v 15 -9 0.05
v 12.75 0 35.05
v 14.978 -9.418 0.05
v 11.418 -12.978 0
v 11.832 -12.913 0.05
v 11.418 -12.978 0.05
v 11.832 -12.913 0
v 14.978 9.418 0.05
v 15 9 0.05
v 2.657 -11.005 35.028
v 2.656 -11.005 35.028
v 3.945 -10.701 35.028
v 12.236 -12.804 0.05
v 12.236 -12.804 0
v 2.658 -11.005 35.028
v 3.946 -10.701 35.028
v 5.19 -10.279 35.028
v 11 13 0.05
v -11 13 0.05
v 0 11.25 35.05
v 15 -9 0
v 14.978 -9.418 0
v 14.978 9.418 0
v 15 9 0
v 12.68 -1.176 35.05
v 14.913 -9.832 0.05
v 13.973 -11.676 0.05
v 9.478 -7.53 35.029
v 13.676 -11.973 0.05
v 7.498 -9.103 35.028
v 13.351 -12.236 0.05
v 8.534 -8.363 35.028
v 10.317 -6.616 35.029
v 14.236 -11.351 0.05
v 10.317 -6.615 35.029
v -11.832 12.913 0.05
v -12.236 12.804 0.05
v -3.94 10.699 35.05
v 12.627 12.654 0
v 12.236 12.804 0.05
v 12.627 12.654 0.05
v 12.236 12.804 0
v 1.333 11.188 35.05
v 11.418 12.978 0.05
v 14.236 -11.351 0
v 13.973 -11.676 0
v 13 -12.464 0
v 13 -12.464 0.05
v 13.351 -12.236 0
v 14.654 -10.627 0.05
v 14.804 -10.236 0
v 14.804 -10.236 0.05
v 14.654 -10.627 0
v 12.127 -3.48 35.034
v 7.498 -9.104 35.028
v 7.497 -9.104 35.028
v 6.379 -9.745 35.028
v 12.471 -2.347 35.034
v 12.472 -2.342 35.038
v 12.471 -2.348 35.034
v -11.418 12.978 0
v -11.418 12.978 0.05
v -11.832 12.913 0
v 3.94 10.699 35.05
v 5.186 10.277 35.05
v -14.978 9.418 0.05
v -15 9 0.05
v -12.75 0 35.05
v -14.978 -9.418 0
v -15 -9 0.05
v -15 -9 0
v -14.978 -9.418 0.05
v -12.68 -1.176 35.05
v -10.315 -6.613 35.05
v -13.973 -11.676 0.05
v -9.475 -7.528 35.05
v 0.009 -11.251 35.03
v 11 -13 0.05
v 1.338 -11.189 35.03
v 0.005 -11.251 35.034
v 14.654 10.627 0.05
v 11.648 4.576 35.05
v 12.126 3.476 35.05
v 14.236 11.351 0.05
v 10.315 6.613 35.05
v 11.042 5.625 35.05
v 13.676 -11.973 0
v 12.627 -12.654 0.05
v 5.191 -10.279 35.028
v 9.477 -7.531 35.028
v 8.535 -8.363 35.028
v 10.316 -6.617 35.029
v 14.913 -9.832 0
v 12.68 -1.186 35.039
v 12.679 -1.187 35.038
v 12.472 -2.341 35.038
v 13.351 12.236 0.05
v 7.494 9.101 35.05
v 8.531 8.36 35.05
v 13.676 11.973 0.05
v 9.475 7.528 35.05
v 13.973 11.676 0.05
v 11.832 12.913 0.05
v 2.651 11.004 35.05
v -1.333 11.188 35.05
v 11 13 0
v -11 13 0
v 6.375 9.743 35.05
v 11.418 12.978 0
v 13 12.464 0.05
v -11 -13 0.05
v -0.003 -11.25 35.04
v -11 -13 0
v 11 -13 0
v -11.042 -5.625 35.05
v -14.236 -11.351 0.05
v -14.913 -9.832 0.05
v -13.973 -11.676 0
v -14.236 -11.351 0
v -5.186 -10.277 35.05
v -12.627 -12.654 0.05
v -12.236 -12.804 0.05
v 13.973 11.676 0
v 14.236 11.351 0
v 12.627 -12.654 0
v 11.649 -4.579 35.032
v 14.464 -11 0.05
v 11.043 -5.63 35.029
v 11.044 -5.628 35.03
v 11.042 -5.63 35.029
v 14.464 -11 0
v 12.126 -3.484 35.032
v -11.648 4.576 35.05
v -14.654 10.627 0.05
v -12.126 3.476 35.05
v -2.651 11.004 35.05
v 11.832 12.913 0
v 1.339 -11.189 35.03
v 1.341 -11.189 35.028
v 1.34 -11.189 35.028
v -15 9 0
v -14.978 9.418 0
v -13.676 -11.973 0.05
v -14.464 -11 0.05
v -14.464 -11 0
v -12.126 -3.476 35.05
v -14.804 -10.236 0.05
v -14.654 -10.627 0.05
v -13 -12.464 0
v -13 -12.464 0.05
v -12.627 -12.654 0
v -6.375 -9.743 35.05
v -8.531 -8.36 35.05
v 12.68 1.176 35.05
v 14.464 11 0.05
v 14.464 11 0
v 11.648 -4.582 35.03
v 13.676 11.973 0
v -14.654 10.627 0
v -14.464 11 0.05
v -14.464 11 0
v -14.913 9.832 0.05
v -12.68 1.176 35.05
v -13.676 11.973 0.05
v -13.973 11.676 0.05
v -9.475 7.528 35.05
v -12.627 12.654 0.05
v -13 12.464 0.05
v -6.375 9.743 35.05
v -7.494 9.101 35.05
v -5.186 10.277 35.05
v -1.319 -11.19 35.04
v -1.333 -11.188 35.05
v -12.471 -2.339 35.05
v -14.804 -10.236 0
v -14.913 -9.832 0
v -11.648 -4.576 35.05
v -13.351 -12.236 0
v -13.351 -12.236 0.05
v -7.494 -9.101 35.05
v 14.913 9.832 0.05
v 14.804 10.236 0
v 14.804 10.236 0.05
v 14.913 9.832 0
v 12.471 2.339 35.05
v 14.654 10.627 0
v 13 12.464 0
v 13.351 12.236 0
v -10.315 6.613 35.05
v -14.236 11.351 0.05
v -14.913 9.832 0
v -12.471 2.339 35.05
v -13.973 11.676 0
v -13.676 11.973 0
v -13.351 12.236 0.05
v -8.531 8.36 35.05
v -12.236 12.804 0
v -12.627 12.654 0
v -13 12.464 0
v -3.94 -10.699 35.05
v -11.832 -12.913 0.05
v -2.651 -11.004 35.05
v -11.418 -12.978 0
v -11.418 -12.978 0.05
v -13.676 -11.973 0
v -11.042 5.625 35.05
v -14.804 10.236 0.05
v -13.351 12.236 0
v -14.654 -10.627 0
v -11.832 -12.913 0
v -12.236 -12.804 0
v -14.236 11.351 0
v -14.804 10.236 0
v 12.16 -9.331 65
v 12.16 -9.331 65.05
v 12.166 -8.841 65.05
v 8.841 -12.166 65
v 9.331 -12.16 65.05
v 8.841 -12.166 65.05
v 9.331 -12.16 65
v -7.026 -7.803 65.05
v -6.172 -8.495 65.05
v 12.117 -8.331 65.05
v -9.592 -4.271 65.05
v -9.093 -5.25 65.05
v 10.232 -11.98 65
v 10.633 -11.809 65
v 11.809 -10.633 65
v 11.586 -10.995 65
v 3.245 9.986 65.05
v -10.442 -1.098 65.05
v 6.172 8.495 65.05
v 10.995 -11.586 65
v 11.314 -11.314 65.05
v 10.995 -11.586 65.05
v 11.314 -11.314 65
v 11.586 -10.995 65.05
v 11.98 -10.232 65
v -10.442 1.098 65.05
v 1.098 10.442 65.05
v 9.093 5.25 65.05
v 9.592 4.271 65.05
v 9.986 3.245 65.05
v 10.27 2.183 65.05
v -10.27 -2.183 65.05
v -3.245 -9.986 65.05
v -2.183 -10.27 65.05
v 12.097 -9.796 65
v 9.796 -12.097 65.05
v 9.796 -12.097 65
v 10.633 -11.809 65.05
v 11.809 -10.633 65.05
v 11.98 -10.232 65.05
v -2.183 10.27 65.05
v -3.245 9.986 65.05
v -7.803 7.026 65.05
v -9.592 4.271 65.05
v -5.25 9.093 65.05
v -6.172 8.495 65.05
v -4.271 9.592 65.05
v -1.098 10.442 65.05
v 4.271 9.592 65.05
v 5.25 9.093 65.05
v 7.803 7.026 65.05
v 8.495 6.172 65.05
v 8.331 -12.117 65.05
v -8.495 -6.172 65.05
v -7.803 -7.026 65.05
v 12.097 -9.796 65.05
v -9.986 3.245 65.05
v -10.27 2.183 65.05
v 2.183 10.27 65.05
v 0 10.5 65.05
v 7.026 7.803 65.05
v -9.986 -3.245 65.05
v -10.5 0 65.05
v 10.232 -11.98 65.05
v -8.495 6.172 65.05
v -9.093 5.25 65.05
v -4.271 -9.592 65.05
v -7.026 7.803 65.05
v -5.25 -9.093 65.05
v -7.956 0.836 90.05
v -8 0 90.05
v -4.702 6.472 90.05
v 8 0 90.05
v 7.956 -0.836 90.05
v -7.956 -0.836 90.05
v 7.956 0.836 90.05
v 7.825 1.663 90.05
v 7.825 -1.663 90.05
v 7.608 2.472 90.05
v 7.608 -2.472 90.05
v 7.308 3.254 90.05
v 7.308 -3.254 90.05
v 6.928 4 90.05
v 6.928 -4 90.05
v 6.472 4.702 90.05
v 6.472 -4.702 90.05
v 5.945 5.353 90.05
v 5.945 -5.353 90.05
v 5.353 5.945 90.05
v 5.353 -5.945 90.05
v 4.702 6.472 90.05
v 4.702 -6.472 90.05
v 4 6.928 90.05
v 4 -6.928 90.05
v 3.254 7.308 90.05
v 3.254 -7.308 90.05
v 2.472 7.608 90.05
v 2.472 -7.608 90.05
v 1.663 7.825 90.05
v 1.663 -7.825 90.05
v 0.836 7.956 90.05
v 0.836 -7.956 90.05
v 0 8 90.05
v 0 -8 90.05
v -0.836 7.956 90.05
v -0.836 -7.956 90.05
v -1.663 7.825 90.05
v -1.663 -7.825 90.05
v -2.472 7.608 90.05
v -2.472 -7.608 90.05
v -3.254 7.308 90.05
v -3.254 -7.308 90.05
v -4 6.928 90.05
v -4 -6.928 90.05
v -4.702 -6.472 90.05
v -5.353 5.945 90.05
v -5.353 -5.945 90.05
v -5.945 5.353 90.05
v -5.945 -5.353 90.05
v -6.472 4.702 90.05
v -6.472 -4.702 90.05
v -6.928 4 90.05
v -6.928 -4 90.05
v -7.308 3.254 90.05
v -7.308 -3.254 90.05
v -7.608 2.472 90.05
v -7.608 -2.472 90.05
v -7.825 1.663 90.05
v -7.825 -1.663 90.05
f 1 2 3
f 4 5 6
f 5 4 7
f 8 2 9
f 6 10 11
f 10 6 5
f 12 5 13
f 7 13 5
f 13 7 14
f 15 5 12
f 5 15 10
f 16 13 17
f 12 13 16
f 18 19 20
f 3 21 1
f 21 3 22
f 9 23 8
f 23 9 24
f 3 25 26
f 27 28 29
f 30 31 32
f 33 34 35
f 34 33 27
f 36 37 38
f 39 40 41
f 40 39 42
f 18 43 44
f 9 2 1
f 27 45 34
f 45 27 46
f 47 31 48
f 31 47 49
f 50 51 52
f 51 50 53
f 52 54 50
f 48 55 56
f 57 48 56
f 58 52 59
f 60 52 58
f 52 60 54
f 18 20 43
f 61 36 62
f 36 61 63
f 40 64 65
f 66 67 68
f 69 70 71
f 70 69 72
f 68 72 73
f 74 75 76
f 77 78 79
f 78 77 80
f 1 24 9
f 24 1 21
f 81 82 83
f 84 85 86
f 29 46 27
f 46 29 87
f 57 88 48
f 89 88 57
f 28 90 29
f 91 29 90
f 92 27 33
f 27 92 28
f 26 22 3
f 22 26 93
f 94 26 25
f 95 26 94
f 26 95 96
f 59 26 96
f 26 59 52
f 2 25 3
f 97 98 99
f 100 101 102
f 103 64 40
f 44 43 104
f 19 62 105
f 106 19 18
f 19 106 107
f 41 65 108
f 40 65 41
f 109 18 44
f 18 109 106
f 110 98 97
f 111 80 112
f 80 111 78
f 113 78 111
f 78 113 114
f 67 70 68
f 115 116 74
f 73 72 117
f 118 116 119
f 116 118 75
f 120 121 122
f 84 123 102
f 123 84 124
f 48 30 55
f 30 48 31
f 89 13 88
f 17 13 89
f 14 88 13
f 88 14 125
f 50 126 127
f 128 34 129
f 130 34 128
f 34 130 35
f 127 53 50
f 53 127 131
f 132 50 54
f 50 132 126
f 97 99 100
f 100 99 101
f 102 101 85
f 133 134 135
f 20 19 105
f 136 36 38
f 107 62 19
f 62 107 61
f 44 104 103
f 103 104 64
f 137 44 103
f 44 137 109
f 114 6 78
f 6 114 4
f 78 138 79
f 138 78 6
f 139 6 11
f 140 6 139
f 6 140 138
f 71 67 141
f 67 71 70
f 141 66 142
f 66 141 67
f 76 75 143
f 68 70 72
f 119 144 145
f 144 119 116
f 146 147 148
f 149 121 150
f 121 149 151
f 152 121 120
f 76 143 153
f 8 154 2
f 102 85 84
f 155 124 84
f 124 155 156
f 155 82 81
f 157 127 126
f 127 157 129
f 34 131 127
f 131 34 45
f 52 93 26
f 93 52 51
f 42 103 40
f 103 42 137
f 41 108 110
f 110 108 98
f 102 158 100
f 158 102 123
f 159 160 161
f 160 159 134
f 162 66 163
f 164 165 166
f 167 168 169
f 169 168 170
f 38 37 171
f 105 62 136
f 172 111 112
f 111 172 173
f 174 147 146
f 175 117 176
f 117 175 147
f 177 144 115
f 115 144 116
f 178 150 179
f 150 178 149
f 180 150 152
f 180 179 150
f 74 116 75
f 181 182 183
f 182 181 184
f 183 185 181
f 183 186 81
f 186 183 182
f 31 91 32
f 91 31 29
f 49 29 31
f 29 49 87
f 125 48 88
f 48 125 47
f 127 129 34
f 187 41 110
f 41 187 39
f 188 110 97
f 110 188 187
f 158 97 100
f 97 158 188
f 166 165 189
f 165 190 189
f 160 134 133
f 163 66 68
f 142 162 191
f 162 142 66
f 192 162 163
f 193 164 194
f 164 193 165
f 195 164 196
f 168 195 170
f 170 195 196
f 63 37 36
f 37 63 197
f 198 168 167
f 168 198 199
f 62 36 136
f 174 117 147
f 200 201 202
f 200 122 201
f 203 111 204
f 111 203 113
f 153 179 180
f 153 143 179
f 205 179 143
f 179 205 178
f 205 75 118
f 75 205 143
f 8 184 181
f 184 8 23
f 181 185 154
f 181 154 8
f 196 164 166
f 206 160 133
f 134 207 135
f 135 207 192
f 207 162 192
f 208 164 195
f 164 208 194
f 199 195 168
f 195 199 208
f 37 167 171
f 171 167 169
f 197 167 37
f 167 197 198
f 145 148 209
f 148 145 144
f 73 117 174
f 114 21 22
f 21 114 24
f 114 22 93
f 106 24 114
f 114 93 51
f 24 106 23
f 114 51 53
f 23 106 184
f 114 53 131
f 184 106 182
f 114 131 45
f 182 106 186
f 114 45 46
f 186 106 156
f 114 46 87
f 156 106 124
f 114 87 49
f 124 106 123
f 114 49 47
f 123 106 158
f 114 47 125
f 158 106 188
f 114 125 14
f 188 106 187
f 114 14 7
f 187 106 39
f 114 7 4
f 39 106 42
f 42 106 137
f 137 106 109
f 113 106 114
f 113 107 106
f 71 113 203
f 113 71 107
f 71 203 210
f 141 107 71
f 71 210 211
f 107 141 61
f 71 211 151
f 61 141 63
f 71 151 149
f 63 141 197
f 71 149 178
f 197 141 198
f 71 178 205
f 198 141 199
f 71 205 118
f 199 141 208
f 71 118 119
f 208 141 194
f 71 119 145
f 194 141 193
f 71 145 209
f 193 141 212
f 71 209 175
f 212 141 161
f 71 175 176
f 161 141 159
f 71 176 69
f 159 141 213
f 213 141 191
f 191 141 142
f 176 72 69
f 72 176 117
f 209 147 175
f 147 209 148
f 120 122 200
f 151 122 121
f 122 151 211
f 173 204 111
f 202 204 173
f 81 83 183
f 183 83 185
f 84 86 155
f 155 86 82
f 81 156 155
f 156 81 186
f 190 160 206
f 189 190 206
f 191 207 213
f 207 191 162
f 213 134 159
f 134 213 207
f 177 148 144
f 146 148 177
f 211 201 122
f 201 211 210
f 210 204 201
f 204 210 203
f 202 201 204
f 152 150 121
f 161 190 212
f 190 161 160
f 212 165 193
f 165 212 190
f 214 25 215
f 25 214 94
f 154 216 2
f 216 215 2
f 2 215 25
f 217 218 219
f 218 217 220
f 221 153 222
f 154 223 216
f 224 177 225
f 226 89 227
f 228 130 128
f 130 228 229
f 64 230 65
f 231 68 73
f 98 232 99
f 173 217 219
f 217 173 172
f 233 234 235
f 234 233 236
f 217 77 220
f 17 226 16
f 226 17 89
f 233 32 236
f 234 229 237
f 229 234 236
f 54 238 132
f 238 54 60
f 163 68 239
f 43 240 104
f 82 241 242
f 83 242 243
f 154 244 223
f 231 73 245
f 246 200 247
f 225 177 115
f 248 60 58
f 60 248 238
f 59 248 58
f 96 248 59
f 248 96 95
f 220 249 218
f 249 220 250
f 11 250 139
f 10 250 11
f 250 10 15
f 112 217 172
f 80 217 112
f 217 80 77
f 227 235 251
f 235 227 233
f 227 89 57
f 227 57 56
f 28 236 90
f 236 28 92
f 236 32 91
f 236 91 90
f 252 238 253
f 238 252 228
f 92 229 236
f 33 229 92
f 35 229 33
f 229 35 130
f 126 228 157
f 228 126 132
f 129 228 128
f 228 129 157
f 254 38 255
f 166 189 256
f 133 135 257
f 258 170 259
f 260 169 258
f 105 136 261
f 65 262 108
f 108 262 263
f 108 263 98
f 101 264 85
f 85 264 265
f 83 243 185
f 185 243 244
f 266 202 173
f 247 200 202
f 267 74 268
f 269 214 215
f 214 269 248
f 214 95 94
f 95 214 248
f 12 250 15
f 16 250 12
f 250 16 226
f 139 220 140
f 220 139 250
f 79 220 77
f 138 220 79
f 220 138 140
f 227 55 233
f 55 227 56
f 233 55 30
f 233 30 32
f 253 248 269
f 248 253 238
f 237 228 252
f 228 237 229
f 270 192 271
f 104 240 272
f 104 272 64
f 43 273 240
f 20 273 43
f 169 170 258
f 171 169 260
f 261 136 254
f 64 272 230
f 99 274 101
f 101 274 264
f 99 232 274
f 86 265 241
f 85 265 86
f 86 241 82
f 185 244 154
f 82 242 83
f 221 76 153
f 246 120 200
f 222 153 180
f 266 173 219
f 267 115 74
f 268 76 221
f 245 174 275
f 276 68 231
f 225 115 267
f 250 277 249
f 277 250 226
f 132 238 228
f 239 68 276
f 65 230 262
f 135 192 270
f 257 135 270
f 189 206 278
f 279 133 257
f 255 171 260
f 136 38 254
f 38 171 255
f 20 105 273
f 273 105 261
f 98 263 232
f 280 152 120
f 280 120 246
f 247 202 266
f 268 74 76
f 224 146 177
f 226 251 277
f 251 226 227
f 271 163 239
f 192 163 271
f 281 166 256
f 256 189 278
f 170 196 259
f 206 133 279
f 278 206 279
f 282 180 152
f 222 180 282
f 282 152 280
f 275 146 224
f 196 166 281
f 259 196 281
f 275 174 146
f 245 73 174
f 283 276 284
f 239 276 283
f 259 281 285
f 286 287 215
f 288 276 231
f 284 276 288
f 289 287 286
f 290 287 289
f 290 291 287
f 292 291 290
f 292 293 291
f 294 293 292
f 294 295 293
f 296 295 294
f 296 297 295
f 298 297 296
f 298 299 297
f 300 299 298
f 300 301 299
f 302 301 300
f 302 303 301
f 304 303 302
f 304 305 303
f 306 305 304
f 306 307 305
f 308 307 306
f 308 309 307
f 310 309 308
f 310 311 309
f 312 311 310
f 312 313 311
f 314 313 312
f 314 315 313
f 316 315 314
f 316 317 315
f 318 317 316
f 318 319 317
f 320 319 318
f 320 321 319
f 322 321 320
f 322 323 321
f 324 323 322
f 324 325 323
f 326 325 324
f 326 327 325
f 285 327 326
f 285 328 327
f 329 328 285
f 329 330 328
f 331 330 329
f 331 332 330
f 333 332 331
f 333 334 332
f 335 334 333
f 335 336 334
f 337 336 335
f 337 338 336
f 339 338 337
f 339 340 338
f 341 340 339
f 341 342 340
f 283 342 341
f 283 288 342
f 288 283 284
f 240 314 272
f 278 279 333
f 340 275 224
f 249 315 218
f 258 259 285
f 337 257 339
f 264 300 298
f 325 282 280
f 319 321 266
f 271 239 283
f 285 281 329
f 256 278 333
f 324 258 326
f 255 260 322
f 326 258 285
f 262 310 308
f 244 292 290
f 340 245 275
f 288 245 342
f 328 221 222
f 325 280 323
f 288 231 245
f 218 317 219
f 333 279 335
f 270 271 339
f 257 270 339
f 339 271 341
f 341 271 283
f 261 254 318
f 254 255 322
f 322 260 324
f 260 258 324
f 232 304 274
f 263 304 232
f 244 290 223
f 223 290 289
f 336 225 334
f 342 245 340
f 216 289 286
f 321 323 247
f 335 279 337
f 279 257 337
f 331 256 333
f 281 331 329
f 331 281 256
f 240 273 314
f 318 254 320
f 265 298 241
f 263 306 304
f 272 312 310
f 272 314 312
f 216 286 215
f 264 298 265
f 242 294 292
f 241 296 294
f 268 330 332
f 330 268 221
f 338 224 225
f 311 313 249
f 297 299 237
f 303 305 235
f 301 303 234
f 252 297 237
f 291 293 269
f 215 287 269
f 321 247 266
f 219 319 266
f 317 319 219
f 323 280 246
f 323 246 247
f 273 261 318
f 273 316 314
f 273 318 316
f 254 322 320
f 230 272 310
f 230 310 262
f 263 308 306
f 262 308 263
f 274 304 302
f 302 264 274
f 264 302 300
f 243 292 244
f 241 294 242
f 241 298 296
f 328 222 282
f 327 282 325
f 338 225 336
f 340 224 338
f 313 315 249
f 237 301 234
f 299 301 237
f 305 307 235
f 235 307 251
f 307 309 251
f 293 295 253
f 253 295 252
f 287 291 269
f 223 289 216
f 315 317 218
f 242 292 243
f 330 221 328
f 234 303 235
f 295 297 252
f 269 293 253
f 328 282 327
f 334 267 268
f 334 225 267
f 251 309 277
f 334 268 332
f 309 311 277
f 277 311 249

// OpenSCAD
// Ergonomic Tool Handle Generator
// Based on 4-section profile transition
// Dimensions approximated based on standard ergonomic grip sizing
// Total Length: 90mm

// --- Configuration ---
$fn = 60; // Resolution for smooth curves

// Handle Lengths (Z positions)
z_pos_A = 0.0;   // Base
z_pos_B = 35.0;  // Neck (Narrowest point)
z_pos_C = 65.0;  // Thumb Rest (Widest feauture)
z_pos_D = 90.0;  // Tip

// Slice thickness (very thin, purely for hulling definition)
epsilon = 0.05;

// --- Main Render ---

module main_handle() {
    union() {
        // Segment 1: Base (Rect) to Neck (Ellipse)
        hull() {
            translate([0,0,z_pos_A]) section_A_base();
            translate([0,0,z_pos_B]) section_B_ellipse();
        }
        
        // Segment 2: Neck (Ellipse) to Thumb Rest (Bump)
        hull() {
            translate([0,0,z_pos_B]) section_B_ellipse();
            translate([0,0,z_pos_C]) section_C_thumb();
        }
        
        // Segment 3: Thumb Rest (Bump) to Tip (Circle)
        hull() {
            translate([0,0,z_pos_C]) section_C_thumb();
            translate([0,0,z_pos_D]) section_D_tip();
        }
    }
}

// --- Cross Section Definitions ---

// Section A: Base - Rounded Rectangle
// Provides a broad base for the palm heel
module section_A_base() {
    linear_extrude(height=epsilon) {
        offset(r=4) {
            square([22, 18], center=true); 
            // Resulting size approx 30x26mm
        }
    }
}

// Section B: Mid - Elliptical
// Narrower for the fingers to wrap around
module section_B_ellipse() {
    linear_extrude(height=epsilon) {
        scale([0.85, 0.75]) circle(d=30); 
        // Approx 25.5x22.5mm
    }
}

// Section C: Thumb Rest - Circle with Asymmetric Bump
// The "Bump" provides a ledge for the thumb to push against
module section_C_thumb() {
    linear_extrude(height=epsilon) {
        hull() {
            // Main shaft body
            circle(d=21);
            
            // The Thumb Bump
            // Rotated to 45 degrees for ergonomic thumb placement
            rotate([0, 0, -45]) { 
                translate([10, 0, 0]) 
                scale([1.2, 0.8]) 
                circle(d=10);
            }
        }
    }
}

// Section D: Tip - Simple Circle
// Interface for the tool shank
module section_D_tip() {
    linear_extrude(height=epsilon) {
        circle(d=16); // Standard tool ferrule size
    }
}

// --- Output ---
color("SlateGray") 
main_handle();

// Optional: Cutaway view to check internal geometry (Uncomment to view)
// #translate([0,0,-1]) cube([50,50,100]);
